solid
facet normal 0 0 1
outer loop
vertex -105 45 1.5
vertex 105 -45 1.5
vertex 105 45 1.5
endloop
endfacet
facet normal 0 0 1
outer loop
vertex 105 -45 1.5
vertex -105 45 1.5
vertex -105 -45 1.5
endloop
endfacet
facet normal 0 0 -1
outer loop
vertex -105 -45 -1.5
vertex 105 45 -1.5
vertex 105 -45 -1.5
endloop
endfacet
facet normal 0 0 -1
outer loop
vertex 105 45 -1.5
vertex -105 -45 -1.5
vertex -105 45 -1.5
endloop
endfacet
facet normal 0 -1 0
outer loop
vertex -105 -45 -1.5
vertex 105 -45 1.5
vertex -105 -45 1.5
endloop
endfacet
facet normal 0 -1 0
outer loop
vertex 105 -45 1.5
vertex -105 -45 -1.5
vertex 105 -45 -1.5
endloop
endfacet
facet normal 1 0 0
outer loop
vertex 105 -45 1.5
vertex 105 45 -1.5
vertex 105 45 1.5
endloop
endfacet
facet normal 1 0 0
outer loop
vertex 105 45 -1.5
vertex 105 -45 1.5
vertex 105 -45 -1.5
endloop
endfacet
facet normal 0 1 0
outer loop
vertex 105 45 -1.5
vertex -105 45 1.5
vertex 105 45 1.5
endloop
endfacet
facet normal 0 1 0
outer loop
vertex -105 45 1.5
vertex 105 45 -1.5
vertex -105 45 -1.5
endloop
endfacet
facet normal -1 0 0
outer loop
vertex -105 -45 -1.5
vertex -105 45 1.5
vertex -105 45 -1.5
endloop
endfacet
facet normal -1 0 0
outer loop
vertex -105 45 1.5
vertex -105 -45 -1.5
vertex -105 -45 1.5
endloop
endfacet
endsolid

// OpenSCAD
// ========================================
// a 210 x 90 x 3 mm plate
// NeuroCAD canonical IR; dimensions are millimetres
// ========================================
$fn = 48;

cube(size=[210, 90, 3], center=true);
